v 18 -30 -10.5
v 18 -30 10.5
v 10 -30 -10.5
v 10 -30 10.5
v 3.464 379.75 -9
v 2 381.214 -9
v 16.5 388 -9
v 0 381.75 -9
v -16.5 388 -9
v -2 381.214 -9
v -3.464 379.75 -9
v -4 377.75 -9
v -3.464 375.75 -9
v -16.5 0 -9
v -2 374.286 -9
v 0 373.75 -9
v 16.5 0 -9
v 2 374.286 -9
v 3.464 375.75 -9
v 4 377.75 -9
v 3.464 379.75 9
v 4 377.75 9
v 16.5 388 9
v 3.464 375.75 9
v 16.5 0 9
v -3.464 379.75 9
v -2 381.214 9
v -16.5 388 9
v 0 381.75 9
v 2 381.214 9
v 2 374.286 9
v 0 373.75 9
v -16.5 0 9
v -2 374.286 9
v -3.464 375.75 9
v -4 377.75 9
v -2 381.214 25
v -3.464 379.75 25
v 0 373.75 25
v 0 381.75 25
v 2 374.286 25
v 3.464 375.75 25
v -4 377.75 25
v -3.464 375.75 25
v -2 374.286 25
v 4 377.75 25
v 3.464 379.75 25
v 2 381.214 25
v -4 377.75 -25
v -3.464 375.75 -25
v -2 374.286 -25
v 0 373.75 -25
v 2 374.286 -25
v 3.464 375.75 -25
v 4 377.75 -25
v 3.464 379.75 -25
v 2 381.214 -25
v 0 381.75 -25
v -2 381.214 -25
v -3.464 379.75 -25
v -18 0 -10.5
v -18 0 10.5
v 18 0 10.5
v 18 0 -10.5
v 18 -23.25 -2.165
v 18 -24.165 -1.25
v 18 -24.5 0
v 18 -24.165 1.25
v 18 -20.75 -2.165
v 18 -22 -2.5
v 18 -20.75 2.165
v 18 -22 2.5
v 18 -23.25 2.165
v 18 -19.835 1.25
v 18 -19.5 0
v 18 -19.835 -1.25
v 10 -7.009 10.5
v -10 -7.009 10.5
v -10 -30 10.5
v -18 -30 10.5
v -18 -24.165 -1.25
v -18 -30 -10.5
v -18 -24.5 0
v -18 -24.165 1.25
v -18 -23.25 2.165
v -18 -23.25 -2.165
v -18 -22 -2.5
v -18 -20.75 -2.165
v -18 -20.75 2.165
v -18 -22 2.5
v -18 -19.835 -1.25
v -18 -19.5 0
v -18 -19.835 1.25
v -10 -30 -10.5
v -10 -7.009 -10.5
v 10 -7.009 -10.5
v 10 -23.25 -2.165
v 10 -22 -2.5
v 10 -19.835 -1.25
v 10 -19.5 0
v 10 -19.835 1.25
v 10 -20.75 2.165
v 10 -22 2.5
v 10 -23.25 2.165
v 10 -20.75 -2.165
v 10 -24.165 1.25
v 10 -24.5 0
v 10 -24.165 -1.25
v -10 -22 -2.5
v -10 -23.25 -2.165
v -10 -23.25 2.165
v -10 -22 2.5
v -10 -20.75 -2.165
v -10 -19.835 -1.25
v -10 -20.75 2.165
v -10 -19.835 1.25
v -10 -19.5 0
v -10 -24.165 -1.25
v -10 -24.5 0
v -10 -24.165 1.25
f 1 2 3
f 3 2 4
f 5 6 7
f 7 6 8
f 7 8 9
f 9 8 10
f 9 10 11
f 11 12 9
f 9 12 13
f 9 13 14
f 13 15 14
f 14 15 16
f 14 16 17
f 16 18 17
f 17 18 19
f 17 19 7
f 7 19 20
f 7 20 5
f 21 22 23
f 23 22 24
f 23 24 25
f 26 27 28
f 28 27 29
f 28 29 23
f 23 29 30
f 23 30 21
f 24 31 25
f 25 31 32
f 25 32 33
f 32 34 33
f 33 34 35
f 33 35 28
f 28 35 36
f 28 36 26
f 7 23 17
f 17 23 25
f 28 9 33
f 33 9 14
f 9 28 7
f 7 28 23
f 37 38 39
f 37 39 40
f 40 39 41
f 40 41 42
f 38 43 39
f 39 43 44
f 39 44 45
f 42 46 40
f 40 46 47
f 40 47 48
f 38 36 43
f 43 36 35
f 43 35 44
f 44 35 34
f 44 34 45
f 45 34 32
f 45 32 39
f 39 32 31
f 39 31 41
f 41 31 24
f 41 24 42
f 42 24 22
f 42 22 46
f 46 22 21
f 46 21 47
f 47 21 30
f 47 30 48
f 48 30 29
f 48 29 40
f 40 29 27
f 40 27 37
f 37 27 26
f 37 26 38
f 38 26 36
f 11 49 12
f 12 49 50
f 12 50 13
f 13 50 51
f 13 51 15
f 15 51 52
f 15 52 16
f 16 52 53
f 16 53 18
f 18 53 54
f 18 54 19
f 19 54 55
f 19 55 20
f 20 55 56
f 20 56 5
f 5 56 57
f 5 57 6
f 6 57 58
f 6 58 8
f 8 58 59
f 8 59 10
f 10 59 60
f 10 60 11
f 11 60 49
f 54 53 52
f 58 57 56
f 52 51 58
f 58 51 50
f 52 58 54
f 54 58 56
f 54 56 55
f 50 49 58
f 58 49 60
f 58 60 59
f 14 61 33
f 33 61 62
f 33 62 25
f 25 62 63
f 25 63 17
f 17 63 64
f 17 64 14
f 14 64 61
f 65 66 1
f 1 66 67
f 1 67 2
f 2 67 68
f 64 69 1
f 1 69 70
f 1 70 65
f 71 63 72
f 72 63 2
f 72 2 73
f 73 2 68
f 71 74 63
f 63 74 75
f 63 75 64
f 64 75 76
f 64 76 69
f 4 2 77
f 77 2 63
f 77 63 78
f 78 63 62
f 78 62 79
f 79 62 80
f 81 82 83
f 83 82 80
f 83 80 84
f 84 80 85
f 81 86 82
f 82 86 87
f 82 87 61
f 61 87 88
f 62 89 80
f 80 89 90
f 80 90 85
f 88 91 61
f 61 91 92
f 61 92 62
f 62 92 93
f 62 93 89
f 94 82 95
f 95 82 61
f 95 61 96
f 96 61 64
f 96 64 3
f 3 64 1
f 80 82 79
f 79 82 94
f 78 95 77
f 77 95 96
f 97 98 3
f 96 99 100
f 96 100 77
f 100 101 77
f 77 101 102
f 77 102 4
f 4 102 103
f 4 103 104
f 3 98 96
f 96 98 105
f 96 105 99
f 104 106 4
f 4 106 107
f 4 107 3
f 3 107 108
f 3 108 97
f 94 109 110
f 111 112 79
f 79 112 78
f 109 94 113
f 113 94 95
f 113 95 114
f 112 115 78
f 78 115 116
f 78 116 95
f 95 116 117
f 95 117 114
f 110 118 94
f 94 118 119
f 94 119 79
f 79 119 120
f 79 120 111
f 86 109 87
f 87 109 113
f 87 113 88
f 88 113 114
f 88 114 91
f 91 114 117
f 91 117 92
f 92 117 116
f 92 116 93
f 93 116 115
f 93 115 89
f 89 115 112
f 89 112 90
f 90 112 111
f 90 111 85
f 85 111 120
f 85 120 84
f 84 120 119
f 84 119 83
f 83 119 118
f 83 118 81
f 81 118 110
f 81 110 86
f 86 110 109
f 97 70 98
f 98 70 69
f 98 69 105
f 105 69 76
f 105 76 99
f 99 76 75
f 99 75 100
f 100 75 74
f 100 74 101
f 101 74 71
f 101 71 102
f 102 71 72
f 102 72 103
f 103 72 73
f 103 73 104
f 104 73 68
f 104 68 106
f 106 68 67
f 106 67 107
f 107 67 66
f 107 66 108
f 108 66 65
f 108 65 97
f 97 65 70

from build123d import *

# Parameters (mm, degrees)
SKETCH1_W           = 33
SKETCH1_H           = 18
BOSS_EXTRUDE1_DEPTH = 388
SKETCH3_R           = 4
BOSS_EXTRUDE2_DEPTH = 25
SKETCH4_W           = 36
SKETCH4_H           = 21
BOSS_EXTRUDE3_DEPTH = 30
SKETCH5_W           = 20
SKETCH5_H           = 45.982478268
CUT_EXTRUDE1_DEPTH  = 391.036216267
SKETCH6_R           = 2.5
CUT_EXTRUDE2_DEPTH  = 391.467668316


with BuildPart() as part:
    # Sketch1 → Boss-Extrude1 (new body)
    with BuildSketch(Plane(origin=(0, 0, 0), x_dir=(1, 0, 0), z_dir=(0, 1, 0))):
        Rectangle(SKETCH1_W, SKETCH1_H)
    extrude(amount=BOSS_EXTRUDE1_DEPTH)

    # Sketch3 → Boss-Extrude2 (add, symmetric)
    with BuildSketch(Plane.XY):
        with Locations(Location((0, 377.75, 0), (0, 0, 180))):
            Circle(SKETCH3_R)
    extrude(amount=BOSS_EXTRUDE2_DEPTH, both=True)

    # Sketch4 → Boss-Extrude3 (add)
    with BuildSketch(Plane.XZ):
        Rectangle(SKETCH4_W, SKETCH4_H)
    extrude(amount=BOSS_EXTRUDE3_DEPTH)

    # Sketch5 → Cut-Extrude1 (cut, through all)
    with BuildSketch(Plane.XY.offset(10.5)):
        with Locations((0, -30)):
            Rectangle(SKETCH5_W, SKETCH5_H)
    extrude(amount=-CUT_EXTRUDE1_DEPTH, mode=Mode.SUBTRACT)

    # Sketch6 → Cut-Extrude2 (cut, through all)
    with BuildSketch(Plane(origin=(18, 0, 0), x_dir=(0, 0, -1), z_dir=(1, 0, 0))):
        with Locations((0, -22)):
            Circle(SKETCH6_R)
    extrude(amount=-CUT_EXTRUDE2_DEPTH, mode=Mode.SUBTRACT)


solid = part.part
